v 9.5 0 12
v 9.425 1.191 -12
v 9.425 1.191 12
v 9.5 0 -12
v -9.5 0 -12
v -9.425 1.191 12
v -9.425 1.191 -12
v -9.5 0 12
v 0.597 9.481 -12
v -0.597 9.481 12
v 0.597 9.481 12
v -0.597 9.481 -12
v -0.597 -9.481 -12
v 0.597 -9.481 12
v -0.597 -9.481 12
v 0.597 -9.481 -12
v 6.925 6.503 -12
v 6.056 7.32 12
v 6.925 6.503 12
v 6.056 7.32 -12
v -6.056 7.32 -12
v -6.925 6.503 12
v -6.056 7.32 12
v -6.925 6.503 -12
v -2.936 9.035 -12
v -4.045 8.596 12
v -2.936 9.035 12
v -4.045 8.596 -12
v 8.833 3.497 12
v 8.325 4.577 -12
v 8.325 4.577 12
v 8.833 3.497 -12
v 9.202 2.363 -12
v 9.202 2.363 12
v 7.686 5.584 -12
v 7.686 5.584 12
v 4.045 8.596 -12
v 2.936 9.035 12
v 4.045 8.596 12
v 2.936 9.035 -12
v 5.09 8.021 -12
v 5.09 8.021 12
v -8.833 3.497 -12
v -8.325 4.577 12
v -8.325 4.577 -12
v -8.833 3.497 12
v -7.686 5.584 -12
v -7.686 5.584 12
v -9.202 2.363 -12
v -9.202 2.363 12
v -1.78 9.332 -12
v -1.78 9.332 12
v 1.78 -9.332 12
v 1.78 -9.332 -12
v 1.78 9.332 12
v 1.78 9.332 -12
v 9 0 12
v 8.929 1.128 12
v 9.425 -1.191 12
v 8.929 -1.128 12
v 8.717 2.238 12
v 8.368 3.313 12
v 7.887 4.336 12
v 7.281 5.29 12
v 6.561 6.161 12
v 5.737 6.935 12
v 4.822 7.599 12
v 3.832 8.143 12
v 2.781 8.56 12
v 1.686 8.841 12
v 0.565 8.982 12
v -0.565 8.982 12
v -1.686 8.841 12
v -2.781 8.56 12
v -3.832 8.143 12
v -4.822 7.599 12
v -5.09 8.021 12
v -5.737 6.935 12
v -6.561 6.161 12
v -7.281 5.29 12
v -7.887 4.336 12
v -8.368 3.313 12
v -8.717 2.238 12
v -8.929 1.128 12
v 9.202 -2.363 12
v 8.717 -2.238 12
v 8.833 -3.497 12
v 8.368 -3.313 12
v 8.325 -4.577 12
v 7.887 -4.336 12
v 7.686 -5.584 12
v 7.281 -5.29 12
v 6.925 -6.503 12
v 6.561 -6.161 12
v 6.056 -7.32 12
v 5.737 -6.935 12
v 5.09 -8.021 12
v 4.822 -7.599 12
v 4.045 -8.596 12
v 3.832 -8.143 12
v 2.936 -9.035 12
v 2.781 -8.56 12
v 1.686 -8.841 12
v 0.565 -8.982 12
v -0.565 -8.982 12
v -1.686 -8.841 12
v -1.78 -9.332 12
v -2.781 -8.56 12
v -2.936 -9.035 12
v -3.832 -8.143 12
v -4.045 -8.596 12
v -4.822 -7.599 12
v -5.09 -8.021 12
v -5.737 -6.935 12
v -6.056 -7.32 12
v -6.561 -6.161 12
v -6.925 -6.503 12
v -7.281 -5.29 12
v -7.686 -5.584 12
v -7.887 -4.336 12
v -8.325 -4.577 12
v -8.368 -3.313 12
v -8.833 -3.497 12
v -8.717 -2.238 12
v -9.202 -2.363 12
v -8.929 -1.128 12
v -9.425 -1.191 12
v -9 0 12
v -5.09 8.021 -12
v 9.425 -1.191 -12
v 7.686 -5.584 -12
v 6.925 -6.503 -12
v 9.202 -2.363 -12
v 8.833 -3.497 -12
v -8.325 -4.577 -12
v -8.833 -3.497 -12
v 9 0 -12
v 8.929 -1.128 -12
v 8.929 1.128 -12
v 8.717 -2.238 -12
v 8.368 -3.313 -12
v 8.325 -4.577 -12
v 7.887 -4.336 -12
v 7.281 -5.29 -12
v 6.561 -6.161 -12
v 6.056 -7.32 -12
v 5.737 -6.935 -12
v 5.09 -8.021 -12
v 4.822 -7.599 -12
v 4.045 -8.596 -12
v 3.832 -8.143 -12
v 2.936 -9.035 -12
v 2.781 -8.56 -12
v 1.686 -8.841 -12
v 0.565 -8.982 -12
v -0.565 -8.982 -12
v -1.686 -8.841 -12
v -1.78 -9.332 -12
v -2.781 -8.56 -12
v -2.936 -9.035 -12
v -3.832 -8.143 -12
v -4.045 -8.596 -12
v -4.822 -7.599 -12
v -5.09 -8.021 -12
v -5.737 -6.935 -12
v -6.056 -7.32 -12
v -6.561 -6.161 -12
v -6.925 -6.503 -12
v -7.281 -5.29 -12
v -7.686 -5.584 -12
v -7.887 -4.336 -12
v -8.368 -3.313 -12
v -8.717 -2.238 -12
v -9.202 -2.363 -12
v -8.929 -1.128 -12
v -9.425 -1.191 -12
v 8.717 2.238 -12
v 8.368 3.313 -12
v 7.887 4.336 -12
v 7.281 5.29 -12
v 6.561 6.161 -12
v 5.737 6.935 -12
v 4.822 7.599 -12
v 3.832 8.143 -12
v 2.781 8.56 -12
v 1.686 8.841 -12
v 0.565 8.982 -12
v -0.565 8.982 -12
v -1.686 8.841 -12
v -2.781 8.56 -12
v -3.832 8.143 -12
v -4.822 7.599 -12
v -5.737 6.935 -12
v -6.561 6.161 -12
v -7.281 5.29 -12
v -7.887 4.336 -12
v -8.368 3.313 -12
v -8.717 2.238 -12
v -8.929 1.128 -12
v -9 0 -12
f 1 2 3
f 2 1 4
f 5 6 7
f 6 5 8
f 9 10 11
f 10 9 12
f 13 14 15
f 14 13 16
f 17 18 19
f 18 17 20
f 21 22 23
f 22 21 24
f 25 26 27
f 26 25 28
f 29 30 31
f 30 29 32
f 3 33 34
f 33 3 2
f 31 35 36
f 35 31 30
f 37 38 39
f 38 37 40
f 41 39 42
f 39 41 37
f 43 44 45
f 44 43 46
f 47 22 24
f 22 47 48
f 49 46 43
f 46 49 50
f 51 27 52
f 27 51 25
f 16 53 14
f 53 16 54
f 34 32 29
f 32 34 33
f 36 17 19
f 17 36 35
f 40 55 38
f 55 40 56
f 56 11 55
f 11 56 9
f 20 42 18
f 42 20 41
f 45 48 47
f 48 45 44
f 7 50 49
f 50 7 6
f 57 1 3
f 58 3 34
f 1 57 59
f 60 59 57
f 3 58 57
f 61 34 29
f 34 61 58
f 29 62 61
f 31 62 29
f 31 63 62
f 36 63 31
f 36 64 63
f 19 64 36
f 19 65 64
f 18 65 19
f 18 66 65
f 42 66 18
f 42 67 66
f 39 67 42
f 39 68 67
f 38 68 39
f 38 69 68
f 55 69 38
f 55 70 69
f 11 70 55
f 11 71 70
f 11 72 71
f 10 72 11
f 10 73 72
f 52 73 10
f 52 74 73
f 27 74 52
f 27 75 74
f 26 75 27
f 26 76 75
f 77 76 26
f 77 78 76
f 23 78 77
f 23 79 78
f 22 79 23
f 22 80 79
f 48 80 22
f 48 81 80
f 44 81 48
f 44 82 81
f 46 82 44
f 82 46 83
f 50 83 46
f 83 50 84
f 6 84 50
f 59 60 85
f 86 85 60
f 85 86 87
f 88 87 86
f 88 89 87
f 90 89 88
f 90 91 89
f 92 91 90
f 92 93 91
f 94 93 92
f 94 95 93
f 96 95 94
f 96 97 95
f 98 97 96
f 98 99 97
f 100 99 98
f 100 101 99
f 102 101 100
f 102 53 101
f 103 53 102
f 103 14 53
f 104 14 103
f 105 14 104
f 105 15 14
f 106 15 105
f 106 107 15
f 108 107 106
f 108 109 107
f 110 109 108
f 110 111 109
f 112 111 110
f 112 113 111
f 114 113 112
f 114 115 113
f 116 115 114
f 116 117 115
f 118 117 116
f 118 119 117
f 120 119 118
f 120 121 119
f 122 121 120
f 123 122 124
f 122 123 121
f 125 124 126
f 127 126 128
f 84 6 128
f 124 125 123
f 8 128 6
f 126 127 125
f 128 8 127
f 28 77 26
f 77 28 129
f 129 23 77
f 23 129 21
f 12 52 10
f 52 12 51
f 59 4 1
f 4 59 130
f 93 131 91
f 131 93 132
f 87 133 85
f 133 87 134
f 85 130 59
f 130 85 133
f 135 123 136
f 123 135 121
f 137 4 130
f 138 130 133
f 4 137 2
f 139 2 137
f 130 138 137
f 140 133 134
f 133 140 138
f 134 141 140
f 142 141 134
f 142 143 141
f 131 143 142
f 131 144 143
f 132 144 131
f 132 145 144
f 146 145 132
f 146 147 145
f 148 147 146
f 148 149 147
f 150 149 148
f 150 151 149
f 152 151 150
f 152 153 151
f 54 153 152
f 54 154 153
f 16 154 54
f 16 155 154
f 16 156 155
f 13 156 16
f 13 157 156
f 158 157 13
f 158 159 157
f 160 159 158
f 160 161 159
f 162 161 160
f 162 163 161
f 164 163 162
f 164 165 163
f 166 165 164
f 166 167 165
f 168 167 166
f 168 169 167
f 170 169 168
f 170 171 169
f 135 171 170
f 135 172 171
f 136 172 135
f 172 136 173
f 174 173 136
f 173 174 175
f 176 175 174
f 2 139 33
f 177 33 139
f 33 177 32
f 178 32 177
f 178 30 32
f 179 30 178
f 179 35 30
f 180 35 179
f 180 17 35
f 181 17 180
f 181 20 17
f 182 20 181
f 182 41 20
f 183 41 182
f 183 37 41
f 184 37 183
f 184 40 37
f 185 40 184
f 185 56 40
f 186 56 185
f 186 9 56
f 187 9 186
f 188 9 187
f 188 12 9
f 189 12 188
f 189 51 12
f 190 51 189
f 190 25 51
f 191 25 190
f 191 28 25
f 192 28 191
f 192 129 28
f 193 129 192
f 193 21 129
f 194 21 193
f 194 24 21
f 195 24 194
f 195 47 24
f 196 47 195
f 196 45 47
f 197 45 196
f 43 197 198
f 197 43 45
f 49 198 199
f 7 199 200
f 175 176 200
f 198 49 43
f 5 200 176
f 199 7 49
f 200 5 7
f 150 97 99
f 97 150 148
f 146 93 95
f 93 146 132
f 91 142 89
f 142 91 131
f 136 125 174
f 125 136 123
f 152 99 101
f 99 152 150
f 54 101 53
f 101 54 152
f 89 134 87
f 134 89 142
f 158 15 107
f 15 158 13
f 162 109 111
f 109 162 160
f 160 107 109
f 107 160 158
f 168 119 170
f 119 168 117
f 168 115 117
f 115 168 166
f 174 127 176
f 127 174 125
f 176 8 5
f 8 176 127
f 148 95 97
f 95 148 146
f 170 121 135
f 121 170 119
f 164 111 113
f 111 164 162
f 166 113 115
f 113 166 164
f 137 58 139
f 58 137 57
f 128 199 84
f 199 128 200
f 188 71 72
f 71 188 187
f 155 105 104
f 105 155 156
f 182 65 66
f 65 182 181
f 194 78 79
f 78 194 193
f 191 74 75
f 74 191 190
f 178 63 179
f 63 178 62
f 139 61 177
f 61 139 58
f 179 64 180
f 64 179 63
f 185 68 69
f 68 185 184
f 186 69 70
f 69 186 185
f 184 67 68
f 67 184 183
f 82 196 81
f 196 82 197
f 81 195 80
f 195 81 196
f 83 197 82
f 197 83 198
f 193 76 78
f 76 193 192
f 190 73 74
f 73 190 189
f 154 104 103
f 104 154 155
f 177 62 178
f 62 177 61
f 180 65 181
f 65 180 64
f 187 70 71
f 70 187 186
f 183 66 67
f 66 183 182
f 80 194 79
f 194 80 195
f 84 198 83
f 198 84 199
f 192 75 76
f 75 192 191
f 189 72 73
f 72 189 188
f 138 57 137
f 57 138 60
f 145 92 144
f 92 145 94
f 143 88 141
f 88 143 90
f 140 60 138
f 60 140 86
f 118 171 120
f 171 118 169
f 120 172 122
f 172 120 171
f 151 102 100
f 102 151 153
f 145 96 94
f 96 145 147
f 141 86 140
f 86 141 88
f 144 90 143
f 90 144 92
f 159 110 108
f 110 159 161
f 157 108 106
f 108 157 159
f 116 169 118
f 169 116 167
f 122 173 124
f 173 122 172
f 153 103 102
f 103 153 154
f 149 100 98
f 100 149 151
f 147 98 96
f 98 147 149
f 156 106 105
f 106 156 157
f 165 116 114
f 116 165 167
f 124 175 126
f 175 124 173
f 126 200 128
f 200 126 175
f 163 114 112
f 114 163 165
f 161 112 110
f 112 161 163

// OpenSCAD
$fn = 50;


difference() {
	union() {
		translate(v = [0, 0, -12.0000000000]) {
			cylinder(h = 24, r = 9.5000000000);
		}
	}
	union() {
		translate(v = [0, 0, -100.0000000000]) {
			cylinder(h = 200, r = 9);
		}
	}
}
